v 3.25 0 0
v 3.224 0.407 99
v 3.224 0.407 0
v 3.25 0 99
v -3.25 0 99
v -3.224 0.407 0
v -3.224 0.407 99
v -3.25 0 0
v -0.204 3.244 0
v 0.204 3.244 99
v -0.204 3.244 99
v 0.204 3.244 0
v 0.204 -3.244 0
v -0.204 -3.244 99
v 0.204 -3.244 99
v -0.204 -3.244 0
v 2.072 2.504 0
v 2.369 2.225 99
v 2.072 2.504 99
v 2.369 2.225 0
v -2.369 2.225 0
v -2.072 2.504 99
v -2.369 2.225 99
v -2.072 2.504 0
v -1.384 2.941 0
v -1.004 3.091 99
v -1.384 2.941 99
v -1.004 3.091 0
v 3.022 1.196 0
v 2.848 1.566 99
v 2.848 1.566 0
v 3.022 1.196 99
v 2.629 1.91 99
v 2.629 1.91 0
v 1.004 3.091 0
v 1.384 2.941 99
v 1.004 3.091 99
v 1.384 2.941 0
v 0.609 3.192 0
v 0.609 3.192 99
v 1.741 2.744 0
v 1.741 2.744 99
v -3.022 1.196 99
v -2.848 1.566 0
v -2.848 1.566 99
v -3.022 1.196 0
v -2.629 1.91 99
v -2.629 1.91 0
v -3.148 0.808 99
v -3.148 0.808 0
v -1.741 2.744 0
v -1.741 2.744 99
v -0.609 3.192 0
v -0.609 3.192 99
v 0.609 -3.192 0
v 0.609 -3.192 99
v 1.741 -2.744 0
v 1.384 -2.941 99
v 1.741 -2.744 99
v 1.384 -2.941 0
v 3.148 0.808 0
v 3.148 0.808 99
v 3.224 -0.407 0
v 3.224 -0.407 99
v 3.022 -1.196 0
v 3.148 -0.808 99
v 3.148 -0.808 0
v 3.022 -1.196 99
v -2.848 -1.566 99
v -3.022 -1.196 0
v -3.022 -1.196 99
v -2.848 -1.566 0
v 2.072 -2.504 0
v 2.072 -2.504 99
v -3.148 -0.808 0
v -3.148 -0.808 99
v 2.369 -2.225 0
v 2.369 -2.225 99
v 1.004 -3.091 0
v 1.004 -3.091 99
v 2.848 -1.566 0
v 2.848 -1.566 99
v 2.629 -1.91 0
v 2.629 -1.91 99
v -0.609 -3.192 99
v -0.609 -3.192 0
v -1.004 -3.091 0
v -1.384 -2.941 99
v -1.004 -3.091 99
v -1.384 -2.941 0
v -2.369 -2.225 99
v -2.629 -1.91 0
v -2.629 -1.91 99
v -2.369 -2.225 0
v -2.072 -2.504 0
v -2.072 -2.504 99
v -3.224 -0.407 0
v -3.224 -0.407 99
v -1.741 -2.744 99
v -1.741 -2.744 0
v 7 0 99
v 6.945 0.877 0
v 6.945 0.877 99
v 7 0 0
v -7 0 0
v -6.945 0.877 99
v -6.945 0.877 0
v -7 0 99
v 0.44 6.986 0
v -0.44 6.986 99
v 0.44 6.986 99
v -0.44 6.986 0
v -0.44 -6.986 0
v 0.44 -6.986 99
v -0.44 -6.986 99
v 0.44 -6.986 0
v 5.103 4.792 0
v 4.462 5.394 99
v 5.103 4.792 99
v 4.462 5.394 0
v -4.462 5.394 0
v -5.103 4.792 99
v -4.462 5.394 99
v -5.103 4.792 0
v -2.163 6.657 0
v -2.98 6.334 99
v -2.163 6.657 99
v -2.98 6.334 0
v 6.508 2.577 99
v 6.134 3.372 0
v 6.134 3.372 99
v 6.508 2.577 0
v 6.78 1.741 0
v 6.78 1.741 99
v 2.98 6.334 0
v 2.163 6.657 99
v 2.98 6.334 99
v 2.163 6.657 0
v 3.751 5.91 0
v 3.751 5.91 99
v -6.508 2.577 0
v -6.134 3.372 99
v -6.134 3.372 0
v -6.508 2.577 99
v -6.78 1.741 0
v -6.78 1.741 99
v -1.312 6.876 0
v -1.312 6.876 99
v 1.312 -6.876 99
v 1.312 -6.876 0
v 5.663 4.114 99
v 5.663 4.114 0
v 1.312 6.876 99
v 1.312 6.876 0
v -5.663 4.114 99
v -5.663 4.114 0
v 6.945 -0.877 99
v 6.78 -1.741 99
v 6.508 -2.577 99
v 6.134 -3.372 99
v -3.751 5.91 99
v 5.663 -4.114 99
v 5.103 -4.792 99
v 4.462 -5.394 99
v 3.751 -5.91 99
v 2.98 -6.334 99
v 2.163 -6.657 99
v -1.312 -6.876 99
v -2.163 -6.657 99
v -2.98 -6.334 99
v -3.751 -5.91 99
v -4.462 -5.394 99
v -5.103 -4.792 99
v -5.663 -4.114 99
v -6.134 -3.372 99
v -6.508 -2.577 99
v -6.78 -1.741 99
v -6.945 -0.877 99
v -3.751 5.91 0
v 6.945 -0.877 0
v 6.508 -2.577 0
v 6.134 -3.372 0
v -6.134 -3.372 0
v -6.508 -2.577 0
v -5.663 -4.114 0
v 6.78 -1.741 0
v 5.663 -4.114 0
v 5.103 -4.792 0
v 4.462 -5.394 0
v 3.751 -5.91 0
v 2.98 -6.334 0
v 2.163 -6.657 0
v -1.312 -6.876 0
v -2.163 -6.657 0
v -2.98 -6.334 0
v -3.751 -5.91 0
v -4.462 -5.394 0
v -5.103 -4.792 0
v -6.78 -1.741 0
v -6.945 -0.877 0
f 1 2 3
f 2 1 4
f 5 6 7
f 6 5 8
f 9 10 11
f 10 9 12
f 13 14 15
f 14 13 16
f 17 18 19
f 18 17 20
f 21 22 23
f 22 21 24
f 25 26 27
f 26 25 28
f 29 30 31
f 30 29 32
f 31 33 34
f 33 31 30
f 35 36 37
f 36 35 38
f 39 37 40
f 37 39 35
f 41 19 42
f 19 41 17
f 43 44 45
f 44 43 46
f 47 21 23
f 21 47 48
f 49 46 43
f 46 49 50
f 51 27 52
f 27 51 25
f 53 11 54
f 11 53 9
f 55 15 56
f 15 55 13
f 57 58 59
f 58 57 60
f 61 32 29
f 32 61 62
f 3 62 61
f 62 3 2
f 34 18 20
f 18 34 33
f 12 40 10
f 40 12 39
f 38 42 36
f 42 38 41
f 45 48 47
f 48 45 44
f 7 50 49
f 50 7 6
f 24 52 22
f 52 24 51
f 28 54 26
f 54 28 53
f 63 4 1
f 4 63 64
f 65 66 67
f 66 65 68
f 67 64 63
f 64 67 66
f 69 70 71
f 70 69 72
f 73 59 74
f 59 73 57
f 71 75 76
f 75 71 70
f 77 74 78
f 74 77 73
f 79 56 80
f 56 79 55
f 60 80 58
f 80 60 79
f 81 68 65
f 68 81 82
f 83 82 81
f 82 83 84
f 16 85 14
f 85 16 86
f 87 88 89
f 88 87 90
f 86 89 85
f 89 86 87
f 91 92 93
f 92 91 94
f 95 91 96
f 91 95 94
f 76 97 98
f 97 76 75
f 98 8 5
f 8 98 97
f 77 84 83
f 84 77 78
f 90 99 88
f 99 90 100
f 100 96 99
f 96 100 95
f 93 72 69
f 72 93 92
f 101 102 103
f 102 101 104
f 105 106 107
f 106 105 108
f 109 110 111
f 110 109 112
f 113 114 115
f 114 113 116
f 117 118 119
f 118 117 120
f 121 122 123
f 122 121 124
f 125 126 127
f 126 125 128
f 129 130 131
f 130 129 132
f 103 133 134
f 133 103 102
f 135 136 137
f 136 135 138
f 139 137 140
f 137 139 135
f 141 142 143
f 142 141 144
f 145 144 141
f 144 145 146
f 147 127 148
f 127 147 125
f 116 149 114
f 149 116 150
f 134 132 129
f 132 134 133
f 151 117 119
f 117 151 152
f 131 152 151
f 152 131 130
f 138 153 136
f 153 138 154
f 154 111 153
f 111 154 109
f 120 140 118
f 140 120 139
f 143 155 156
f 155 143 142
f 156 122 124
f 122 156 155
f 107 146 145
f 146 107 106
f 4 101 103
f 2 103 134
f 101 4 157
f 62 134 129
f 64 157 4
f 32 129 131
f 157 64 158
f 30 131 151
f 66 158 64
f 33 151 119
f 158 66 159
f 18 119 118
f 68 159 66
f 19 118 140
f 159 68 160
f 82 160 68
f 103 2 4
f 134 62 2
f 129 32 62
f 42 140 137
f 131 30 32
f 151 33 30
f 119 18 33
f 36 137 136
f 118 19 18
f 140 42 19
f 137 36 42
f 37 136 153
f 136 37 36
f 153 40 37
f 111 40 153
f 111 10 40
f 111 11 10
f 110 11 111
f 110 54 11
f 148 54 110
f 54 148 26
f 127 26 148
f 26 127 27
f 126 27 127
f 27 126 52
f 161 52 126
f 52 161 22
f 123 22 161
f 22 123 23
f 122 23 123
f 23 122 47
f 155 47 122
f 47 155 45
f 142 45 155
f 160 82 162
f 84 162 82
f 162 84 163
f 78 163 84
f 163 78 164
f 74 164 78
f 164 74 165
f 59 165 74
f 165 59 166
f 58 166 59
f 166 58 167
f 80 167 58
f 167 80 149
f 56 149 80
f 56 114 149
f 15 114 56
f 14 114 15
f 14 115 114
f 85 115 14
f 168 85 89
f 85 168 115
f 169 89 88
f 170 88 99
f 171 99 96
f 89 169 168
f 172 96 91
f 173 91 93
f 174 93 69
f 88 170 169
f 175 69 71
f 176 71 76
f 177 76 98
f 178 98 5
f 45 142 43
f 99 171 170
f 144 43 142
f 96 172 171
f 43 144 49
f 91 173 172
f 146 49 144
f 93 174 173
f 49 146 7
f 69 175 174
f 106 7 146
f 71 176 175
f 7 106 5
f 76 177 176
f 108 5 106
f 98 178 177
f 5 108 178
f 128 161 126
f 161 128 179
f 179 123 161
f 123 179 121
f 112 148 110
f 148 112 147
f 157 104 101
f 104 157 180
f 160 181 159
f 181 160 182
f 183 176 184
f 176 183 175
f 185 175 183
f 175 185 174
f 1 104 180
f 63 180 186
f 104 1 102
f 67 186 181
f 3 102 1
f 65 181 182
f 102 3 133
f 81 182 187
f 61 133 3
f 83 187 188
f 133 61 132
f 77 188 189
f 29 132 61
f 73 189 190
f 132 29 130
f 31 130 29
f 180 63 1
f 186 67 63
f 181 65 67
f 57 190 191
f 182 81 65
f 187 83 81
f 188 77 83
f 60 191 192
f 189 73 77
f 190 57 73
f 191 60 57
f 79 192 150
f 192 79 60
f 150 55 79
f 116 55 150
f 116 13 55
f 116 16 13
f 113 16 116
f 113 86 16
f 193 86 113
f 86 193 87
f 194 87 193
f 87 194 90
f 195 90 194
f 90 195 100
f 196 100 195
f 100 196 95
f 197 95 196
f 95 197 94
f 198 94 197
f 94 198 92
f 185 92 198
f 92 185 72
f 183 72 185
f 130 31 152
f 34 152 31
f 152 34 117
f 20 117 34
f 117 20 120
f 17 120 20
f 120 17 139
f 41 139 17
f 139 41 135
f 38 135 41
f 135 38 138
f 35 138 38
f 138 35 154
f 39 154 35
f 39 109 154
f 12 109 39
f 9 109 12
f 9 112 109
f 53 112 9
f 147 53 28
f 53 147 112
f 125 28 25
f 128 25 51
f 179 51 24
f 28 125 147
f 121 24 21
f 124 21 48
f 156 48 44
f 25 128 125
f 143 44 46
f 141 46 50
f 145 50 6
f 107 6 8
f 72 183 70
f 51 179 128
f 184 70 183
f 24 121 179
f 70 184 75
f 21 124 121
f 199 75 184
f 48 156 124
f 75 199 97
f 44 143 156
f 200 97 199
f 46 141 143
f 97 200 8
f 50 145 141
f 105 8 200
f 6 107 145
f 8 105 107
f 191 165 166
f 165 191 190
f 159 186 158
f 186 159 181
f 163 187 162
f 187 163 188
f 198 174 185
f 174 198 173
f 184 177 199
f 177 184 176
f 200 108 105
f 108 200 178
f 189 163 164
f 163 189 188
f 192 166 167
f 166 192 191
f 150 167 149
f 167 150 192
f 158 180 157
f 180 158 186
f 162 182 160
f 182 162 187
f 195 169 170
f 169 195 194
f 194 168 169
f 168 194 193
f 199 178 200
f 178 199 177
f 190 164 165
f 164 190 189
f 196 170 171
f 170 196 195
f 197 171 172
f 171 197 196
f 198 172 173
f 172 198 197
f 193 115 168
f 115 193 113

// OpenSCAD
$fn = 50;


difference() {
	union() {
		cylinder(h = 99, r = 7.0000000000);
	}
	union() {
		cylinder(h = 99, r = 3.2500000000);
		cylinder(h = 99, r = 3.2500000000);
		cylinder(h = 99, r = 1.8000000000);
		cylinder(h = 99, r = 1.8000000000);
		cylinder(h = 99, r = 1.8000000000);
		cylinder(h = 99, r = 1.8000000000);
		cylinder(h = 99, r = 1.8000000000);
		cylinder(h = 99, r = 1.8000000000);
	}
}
